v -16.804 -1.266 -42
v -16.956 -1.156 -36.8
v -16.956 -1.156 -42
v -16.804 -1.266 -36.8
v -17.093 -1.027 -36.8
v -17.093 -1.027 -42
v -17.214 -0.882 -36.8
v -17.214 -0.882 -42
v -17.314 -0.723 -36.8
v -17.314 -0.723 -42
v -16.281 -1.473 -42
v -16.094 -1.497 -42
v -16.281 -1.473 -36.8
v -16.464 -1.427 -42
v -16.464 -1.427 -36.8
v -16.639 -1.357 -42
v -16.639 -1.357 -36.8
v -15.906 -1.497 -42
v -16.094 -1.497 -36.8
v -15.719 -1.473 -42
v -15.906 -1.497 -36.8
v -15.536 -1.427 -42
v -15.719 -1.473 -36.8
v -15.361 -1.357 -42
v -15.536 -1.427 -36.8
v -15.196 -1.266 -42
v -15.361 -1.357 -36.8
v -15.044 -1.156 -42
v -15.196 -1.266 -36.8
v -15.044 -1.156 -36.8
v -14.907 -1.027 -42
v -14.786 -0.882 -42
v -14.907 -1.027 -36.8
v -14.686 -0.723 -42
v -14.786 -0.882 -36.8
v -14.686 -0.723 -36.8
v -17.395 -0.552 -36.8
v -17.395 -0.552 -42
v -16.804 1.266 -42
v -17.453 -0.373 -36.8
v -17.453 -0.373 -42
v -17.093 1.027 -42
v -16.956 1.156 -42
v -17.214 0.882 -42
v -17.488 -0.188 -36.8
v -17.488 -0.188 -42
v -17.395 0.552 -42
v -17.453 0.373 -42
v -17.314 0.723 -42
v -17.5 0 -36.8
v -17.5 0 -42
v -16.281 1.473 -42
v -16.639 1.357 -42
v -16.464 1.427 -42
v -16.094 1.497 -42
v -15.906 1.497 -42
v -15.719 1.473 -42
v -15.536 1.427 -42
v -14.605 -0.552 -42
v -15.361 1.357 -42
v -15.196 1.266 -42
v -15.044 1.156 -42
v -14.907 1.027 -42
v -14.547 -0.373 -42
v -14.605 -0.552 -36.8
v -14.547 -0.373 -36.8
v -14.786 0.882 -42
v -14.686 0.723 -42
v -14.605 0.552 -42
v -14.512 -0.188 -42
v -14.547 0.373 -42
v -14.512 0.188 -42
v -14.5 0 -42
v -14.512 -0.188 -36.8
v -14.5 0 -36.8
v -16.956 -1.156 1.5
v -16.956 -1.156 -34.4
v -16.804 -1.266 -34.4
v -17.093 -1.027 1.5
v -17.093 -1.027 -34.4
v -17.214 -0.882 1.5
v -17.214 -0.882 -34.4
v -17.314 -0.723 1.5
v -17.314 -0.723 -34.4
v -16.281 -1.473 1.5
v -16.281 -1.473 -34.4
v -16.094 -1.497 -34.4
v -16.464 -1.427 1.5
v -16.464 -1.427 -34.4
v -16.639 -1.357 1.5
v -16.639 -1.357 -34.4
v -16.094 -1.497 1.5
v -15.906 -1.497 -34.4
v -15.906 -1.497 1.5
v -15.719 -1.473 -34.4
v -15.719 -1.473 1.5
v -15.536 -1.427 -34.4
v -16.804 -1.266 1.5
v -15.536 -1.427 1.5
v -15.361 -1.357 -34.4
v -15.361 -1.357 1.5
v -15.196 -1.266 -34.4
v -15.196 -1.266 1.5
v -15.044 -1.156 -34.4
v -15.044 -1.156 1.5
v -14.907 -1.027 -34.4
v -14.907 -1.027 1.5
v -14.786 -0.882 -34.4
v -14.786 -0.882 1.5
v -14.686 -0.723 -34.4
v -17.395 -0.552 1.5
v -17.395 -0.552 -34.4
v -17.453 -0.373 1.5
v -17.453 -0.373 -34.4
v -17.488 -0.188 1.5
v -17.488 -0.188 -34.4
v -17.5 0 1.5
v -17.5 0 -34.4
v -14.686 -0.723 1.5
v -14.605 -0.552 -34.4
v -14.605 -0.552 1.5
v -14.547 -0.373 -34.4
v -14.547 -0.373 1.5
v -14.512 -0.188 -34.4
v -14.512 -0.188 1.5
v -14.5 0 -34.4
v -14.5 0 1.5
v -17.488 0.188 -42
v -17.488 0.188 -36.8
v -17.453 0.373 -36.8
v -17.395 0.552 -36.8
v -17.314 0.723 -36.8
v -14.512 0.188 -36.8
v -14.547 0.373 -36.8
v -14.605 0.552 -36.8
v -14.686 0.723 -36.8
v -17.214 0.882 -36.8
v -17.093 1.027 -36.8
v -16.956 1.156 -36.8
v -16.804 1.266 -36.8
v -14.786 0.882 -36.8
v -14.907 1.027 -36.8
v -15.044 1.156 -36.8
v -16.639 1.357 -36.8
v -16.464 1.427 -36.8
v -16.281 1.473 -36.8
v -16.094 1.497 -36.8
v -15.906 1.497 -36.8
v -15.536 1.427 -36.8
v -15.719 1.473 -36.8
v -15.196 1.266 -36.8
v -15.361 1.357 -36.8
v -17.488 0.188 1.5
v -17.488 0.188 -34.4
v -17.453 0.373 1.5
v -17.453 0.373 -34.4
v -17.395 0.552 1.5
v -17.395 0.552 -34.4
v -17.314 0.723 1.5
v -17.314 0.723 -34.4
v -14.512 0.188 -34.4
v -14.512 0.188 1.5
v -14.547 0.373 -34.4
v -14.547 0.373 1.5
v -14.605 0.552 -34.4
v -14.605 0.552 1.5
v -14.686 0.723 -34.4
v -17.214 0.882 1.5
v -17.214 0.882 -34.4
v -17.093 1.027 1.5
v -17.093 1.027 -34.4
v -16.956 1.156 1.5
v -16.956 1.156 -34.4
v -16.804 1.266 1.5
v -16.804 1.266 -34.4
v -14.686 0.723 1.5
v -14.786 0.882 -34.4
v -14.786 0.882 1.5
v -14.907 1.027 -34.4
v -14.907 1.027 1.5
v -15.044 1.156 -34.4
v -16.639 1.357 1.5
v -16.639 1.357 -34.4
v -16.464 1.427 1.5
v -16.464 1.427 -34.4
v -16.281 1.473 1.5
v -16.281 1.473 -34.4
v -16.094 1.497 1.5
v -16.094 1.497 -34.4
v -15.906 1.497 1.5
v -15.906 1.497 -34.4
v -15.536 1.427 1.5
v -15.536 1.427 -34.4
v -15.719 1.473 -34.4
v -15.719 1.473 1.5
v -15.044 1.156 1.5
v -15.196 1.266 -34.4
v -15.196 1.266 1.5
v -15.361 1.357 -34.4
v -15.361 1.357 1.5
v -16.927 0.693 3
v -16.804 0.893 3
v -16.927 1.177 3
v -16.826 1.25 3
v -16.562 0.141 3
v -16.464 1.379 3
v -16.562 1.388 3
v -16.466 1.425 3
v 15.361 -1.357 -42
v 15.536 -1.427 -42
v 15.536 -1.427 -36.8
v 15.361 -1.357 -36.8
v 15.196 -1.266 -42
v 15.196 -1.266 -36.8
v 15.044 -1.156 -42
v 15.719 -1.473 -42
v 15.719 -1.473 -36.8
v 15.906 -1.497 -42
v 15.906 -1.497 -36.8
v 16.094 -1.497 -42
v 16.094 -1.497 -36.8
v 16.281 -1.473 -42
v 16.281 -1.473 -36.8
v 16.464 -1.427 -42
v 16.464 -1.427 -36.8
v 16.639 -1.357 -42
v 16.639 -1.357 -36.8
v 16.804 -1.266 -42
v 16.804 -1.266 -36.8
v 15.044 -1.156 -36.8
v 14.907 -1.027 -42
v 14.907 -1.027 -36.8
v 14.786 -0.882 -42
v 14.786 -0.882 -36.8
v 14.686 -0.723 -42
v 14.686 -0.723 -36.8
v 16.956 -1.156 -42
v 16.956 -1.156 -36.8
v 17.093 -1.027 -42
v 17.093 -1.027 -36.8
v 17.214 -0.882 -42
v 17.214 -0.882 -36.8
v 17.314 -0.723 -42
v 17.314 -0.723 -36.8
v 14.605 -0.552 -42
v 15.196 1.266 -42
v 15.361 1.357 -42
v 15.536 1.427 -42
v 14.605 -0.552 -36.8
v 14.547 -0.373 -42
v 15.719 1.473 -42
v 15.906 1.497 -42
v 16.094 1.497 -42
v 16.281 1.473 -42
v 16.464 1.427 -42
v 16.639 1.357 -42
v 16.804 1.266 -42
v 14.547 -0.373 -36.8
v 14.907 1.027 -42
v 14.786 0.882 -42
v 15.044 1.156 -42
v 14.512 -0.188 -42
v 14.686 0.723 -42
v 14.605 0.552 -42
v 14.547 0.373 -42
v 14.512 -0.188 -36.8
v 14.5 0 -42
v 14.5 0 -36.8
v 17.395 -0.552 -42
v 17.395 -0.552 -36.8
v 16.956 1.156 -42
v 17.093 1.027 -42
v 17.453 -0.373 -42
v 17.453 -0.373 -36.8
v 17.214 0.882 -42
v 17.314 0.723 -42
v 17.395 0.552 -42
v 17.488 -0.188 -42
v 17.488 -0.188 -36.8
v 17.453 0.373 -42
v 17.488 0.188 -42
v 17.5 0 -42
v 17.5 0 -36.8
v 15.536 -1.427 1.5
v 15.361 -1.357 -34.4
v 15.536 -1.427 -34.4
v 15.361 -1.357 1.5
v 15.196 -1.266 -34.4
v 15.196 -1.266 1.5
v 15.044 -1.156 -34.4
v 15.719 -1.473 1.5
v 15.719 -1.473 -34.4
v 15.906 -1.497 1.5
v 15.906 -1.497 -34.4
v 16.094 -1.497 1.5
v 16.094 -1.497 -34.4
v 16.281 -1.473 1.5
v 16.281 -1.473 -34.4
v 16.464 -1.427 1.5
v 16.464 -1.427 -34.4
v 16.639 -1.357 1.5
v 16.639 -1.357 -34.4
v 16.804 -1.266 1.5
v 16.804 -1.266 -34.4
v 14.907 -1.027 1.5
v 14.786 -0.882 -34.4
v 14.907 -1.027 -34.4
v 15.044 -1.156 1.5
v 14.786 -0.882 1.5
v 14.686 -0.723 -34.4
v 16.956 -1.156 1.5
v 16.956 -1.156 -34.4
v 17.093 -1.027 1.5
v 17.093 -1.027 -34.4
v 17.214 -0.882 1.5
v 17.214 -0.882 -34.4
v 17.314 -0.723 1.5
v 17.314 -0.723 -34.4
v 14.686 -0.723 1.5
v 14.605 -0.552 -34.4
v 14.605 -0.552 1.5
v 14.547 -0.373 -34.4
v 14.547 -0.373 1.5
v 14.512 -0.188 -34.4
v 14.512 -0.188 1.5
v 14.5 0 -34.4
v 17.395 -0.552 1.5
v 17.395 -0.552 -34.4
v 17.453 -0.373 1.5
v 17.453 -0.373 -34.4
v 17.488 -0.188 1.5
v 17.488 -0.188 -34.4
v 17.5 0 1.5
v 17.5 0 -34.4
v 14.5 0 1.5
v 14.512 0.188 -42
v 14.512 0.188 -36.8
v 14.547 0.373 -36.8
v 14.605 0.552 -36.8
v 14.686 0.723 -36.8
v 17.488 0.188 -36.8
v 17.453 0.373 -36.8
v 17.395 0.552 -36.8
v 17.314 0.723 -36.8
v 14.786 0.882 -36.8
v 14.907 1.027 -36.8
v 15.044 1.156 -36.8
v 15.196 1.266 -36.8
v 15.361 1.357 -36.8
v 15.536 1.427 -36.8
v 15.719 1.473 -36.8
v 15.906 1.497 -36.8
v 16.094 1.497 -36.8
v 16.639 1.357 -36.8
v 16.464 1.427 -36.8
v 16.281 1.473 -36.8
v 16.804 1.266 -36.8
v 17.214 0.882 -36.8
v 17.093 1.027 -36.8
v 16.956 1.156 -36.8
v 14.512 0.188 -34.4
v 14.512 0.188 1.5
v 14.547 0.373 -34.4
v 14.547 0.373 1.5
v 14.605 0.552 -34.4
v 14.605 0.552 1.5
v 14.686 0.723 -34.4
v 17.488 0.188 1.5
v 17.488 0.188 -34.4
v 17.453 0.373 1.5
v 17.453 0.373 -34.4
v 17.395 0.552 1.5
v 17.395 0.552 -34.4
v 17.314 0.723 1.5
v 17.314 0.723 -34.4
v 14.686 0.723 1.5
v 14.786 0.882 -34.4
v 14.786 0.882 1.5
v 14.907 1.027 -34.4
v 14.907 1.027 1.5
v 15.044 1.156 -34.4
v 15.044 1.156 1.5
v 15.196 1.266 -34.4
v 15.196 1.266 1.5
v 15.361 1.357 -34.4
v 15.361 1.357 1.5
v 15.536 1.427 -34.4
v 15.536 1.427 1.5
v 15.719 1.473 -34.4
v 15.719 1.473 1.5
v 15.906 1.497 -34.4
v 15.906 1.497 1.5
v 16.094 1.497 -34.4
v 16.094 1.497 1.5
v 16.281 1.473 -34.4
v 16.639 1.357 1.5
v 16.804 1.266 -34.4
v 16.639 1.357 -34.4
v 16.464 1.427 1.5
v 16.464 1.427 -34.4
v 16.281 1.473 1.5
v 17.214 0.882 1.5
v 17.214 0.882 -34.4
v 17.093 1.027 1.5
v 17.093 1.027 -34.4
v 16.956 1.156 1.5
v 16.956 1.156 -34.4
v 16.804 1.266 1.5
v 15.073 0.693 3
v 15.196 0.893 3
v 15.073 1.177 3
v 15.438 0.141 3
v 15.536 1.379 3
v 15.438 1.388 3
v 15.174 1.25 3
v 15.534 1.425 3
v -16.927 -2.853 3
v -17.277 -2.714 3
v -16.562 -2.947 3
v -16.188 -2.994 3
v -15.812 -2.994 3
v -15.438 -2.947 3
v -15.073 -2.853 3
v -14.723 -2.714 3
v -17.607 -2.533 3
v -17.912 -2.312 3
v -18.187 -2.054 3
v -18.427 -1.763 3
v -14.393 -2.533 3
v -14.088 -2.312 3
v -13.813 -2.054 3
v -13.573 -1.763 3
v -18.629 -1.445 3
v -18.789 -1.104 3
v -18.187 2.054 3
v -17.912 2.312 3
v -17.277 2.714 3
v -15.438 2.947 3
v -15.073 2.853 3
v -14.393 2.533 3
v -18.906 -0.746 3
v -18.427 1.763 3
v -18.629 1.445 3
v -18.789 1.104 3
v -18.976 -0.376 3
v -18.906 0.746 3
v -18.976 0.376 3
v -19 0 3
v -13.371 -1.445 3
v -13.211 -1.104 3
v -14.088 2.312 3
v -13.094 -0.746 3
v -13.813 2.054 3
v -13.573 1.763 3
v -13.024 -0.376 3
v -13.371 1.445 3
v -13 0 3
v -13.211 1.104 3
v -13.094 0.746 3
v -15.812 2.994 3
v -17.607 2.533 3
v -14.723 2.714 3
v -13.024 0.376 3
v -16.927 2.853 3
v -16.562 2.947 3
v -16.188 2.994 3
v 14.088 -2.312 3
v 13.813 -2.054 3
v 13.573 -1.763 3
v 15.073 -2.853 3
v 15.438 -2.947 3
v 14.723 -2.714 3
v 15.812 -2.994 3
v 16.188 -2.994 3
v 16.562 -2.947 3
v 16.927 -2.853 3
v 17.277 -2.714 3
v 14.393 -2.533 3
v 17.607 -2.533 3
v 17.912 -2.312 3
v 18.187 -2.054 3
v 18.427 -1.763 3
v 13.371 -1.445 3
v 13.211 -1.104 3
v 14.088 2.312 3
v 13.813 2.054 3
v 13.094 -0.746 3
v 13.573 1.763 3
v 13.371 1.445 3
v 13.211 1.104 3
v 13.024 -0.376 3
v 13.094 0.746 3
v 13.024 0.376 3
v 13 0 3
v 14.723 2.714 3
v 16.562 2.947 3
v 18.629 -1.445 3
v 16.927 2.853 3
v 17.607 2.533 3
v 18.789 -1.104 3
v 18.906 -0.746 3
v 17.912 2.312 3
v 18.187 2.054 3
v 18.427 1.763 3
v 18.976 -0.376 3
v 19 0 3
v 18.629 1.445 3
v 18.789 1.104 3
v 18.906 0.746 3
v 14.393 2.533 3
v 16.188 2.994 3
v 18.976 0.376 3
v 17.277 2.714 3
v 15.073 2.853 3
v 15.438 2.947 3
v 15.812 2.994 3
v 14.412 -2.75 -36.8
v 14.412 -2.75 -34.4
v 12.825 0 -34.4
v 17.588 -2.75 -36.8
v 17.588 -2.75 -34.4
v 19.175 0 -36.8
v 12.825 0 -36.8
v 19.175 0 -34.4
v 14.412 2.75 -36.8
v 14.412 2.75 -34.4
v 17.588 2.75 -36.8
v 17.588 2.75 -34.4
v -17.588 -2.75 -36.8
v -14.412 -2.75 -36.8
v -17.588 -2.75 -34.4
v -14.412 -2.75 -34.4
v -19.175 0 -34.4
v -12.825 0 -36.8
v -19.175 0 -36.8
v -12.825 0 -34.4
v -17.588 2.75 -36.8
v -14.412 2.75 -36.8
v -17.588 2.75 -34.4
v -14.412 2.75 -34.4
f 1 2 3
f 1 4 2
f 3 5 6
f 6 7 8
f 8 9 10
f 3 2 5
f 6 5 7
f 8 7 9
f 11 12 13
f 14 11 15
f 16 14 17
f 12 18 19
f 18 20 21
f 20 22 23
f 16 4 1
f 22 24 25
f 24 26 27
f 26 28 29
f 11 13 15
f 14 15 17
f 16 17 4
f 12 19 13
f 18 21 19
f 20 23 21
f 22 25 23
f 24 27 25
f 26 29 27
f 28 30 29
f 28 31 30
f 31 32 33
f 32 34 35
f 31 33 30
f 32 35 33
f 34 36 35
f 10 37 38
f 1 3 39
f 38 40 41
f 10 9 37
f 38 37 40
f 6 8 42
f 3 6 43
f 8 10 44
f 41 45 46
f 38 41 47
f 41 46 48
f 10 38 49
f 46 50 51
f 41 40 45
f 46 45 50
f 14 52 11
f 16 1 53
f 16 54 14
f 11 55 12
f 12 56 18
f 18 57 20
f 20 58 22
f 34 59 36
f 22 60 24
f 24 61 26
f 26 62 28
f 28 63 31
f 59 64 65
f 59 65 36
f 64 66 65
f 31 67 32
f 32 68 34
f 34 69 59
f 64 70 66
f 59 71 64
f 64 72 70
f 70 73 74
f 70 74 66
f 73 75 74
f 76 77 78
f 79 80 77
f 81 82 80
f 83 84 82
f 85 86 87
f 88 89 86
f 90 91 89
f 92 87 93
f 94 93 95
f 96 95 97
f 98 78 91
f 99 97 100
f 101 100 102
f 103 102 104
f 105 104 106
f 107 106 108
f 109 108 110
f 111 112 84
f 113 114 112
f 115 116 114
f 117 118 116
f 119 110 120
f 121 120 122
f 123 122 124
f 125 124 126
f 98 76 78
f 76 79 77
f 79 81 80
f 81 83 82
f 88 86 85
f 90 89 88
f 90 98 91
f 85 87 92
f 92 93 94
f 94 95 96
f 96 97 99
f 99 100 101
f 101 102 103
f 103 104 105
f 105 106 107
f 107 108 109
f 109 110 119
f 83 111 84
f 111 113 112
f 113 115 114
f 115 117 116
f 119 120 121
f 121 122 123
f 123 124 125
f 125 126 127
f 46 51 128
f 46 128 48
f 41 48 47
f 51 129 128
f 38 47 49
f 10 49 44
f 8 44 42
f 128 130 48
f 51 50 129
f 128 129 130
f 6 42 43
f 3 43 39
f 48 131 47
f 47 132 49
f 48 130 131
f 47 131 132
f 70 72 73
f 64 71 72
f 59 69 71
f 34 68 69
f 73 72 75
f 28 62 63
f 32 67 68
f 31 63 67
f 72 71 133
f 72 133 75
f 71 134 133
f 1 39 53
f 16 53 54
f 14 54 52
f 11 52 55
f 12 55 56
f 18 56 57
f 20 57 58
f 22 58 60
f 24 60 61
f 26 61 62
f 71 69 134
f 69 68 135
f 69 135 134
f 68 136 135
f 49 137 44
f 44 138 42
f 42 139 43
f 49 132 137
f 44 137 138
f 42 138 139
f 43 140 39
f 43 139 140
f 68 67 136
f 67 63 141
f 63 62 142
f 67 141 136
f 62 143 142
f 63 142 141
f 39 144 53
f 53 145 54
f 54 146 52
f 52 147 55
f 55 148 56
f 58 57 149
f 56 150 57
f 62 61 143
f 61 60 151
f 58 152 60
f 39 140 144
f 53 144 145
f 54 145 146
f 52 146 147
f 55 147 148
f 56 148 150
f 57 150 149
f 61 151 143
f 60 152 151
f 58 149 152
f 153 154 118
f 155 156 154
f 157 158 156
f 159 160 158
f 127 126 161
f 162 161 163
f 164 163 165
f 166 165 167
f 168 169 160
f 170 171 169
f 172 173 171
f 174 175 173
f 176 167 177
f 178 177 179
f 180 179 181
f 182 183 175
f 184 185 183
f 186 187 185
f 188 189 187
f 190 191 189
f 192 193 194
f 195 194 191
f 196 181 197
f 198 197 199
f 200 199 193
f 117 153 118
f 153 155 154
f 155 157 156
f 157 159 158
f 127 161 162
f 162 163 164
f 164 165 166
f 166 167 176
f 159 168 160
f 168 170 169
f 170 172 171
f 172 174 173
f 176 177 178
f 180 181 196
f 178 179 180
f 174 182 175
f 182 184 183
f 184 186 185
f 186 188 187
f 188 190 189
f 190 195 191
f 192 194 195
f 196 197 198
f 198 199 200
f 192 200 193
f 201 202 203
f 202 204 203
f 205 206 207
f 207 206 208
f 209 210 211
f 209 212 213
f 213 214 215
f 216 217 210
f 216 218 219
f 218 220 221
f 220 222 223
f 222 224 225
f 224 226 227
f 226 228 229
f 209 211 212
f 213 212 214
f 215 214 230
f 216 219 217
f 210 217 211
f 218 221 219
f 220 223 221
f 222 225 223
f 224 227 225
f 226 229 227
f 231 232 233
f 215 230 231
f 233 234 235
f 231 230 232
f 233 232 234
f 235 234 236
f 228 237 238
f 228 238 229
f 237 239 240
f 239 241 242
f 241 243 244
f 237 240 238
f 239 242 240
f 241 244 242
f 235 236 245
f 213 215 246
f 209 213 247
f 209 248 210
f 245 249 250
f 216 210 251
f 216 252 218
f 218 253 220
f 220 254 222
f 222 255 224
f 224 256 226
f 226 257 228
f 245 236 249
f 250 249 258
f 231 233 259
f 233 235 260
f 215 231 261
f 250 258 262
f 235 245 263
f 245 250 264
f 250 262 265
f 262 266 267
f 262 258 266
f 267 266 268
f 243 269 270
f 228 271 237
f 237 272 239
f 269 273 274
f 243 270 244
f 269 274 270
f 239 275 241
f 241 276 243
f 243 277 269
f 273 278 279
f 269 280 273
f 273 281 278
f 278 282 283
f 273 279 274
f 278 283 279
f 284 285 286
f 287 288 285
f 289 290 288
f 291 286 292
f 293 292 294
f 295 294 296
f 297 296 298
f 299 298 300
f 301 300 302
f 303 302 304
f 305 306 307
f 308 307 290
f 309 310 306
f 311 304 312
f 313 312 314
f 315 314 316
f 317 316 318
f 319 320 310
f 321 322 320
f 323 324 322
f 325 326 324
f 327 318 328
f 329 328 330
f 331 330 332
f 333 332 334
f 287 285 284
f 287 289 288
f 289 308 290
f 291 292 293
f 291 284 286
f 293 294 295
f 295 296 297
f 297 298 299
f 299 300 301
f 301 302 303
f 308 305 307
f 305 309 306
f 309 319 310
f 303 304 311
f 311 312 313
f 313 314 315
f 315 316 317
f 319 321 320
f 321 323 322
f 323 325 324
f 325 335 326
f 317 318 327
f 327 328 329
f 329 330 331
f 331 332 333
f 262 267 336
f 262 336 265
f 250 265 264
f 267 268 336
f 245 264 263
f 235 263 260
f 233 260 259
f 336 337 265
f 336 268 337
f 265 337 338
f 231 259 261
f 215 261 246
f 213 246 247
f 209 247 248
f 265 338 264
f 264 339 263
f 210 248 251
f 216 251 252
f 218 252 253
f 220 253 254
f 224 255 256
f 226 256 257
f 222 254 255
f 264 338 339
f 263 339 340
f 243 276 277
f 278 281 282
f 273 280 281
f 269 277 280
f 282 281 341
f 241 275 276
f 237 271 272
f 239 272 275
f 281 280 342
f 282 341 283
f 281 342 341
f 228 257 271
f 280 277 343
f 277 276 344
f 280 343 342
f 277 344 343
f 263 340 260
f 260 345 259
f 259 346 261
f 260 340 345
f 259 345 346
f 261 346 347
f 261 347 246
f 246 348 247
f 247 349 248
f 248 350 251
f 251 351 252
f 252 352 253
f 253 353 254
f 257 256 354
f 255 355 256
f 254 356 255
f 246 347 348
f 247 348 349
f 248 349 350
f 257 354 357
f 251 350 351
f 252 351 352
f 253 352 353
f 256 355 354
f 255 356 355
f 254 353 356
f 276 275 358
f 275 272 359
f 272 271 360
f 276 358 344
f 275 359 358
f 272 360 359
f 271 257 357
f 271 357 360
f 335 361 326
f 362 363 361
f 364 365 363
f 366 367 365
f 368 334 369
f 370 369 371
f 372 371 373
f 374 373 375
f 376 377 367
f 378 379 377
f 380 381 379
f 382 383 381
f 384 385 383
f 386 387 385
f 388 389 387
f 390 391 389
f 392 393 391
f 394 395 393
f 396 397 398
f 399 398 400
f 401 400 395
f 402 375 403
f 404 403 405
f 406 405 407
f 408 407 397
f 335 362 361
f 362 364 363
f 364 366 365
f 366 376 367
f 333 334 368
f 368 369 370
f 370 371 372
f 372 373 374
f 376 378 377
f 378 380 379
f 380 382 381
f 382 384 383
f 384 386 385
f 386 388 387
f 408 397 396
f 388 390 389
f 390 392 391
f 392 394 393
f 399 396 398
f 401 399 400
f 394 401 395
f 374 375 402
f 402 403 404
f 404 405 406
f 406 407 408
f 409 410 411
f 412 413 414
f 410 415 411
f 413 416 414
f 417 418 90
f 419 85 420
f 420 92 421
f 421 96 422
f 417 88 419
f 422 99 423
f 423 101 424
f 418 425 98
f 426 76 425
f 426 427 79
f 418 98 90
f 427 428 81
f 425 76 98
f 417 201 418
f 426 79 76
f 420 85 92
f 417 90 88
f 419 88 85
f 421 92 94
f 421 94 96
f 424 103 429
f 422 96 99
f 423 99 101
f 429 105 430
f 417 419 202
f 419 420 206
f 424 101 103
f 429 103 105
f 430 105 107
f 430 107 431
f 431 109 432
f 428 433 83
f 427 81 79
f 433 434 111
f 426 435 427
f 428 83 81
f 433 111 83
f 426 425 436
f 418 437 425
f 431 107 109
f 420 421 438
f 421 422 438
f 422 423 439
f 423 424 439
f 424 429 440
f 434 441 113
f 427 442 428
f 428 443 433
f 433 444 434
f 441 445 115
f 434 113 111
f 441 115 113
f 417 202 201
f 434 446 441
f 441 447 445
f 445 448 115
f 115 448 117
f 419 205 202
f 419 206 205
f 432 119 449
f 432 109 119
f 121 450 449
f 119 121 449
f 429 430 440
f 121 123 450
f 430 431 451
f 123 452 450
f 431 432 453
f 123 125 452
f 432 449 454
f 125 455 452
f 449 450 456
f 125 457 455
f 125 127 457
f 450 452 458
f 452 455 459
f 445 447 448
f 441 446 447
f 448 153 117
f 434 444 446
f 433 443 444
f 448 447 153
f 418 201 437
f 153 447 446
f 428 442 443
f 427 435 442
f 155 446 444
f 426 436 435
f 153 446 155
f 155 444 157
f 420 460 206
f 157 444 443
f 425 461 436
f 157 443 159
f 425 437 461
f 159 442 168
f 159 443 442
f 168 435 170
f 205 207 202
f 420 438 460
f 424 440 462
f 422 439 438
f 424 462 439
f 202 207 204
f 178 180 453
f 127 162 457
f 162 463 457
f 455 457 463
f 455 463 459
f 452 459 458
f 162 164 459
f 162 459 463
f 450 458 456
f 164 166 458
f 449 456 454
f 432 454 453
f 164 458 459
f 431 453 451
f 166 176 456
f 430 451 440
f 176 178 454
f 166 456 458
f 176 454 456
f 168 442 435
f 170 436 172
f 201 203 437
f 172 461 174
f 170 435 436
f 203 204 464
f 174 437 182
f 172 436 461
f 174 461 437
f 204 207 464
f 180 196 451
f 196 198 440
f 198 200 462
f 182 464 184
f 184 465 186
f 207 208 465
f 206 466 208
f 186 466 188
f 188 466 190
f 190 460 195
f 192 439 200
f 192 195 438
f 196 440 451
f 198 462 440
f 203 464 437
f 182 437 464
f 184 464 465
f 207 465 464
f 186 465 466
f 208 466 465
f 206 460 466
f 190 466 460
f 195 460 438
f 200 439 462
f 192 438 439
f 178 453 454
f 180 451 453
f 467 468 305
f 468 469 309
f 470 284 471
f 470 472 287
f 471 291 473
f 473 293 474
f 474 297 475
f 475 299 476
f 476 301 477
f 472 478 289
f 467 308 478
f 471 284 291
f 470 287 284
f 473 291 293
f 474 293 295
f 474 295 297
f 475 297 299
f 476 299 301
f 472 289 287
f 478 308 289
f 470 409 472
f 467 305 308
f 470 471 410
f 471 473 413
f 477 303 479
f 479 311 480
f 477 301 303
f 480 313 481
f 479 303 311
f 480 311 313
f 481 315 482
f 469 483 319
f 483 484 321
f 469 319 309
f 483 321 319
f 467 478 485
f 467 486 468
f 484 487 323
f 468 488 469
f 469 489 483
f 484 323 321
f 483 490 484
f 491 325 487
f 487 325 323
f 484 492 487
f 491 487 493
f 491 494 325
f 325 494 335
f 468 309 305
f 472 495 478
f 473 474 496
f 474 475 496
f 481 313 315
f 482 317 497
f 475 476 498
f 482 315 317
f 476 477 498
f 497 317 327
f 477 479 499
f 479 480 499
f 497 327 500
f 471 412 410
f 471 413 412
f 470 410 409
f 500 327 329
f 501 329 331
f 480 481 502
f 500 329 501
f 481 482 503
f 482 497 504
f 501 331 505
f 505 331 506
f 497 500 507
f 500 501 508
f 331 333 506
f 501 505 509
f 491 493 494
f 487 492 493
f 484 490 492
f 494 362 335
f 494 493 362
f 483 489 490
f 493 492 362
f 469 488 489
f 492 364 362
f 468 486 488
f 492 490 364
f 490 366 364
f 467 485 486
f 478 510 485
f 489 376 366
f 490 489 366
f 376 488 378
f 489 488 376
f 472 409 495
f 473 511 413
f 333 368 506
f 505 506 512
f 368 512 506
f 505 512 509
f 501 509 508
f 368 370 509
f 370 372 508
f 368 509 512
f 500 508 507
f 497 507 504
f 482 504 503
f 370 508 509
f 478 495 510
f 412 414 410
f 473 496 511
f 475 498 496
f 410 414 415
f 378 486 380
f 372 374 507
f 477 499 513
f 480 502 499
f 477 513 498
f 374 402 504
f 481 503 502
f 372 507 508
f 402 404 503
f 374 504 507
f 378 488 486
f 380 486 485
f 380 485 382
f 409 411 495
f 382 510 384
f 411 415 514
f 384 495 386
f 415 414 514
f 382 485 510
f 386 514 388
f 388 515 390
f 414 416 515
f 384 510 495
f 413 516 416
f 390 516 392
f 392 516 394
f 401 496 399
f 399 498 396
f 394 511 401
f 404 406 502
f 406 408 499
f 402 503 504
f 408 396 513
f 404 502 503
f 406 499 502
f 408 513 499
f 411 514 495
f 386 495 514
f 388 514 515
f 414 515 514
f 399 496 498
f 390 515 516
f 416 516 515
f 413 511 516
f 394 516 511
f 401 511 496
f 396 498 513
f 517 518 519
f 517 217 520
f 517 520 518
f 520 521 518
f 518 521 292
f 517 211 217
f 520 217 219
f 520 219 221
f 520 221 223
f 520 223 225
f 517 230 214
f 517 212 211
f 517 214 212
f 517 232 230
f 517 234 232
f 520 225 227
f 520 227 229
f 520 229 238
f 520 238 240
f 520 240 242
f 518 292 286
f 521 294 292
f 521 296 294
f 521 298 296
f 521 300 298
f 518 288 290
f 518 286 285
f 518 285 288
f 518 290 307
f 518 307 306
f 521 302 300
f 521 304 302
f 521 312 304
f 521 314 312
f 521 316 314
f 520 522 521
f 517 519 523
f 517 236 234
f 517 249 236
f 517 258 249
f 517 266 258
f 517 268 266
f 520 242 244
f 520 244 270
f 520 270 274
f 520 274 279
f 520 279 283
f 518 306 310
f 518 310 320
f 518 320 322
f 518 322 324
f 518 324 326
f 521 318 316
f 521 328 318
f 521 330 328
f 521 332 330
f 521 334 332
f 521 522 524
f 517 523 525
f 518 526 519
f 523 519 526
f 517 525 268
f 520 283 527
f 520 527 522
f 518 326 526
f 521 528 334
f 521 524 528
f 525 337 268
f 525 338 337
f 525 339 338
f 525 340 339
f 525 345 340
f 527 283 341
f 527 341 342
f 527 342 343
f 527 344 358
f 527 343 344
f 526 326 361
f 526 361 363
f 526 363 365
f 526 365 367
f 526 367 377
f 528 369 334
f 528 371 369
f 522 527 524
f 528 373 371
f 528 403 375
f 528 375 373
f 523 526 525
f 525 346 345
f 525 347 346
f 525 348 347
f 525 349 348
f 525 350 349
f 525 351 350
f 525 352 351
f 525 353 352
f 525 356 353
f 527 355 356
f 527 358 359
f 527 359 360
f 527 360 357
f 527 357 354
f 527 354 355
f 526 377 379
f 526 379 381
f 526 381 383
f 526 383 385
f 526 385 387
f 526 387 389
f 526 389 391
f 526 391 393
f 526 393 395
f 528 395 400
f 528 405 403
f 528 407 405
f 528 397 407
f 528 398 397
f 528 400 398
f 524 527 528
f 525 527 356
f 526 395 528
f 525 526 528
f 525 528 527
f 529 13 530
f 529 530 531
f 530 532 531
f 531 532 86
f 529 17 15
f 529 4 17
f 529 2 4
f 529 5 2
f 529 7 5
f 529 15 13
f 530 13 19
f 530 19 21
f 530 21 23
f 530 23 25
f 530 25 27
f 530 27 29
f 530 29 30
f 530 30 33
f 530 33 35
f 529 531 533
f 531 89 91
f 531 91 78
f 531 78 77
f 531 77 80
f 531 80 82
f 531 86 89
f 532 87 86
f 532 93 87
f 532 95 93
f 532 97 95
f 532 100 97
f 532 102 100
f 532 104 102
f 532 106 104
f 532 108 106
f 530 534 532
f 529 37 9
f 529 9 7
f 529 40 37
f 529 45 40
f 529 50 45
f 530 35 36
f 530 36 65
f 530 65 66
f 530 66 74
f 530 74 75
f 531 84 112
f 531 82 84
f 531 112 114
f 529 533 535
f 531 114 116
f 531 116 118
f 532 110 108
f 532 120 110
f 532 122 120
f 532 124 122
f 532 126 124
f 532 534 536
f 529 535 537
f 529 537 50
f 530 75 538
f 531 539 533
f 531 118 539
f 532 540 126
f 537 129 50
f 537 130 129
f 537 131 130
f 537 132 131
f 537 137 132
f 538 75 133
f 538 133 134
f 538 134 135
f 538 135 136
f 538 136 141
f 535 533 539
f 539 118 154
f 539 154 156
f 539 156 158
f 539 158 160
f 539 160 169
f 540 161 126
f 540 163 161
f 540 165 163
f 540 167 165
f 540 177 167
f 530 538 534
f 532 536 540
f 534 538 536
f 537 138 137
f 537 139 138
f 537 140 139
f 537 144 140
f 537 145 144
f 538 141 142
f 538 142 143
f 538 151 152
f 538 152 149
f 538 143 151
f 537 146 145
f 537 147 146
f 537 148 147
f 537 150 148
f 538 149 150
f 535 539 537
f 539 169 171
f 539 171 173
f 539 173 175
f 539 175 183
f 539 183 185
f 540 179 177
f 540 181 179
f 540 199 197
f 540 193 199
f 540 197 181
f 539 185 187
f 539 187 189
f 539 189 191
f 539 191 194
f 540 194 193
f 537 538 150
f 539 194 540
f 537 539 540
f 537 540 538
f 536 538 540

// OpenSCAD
$fn = 50;

difference() {
	union() {
		translate(v = [-16, 0, 3]) {
			rotate(a = [0, 0, 0]) {
				difference() {
					union() {
						translate(v = [0, 0, -45.0]) {
							cylinder(h = 45, r = 1.5);
						}
						translate(v = [0, 0, -1.5]) {
							cylinder(h = 1.5, r1 = 1.5, r2 = 3);
						}
					}
					union();
				}
			}
		}
		translate(v = [-16, 0, -36.8]) {
			rotate(a = [0, 0, 0]) {
				difference() {
					union() {
						linear_extrude(height = 2.4) {
							polygon(points = [[3.1754264805429417, 0.0], [1.5877132402714713, 2.75], [-1.5877132402714702, 2.7500000000000004], [-3.1754264805429417, 3.888775875324659e-16], [-1.5877132402714722, -2.7499999999999996], [1.5877132402714687, -2.7500000000000013]]);
						}
					}
					union();
				}
			}
		}
		translate(v = [16, 0, 3]) {
			rotate(a = [0, 0, 0]) {
				difference() {
					union() {
						translate(v = [0, 0, -45.0]) {
							cylinder(h = 45, r = 1.5);
						}
						translate(v = [0, 0, -1.5]) {
							cylinder(h = 1.5, r1 = 1.5, r2 = 3);
						}
					}
					union();
				}
			}
		}
		translate(v = [16, 0, -36.8]) {
			rotate(a = [0, 0, 0]) {
				difference() {
					union() {
						linear_extrude(height = 2.4) {
							polygon(points = [[3.1754264805429417, 0.0], [1.5877132402714713, 2.75], [-1.5877132402714702, 2.7500000000000004], [-3.1754264805429417, 3.888775875324659e-16], [-1.5877132402714722, -2.7499999999999996], [1.5877132402714687, -2.7500000000000013]]);
						}
					}
					union();
				}
			}
		}
	}
	union();
}
